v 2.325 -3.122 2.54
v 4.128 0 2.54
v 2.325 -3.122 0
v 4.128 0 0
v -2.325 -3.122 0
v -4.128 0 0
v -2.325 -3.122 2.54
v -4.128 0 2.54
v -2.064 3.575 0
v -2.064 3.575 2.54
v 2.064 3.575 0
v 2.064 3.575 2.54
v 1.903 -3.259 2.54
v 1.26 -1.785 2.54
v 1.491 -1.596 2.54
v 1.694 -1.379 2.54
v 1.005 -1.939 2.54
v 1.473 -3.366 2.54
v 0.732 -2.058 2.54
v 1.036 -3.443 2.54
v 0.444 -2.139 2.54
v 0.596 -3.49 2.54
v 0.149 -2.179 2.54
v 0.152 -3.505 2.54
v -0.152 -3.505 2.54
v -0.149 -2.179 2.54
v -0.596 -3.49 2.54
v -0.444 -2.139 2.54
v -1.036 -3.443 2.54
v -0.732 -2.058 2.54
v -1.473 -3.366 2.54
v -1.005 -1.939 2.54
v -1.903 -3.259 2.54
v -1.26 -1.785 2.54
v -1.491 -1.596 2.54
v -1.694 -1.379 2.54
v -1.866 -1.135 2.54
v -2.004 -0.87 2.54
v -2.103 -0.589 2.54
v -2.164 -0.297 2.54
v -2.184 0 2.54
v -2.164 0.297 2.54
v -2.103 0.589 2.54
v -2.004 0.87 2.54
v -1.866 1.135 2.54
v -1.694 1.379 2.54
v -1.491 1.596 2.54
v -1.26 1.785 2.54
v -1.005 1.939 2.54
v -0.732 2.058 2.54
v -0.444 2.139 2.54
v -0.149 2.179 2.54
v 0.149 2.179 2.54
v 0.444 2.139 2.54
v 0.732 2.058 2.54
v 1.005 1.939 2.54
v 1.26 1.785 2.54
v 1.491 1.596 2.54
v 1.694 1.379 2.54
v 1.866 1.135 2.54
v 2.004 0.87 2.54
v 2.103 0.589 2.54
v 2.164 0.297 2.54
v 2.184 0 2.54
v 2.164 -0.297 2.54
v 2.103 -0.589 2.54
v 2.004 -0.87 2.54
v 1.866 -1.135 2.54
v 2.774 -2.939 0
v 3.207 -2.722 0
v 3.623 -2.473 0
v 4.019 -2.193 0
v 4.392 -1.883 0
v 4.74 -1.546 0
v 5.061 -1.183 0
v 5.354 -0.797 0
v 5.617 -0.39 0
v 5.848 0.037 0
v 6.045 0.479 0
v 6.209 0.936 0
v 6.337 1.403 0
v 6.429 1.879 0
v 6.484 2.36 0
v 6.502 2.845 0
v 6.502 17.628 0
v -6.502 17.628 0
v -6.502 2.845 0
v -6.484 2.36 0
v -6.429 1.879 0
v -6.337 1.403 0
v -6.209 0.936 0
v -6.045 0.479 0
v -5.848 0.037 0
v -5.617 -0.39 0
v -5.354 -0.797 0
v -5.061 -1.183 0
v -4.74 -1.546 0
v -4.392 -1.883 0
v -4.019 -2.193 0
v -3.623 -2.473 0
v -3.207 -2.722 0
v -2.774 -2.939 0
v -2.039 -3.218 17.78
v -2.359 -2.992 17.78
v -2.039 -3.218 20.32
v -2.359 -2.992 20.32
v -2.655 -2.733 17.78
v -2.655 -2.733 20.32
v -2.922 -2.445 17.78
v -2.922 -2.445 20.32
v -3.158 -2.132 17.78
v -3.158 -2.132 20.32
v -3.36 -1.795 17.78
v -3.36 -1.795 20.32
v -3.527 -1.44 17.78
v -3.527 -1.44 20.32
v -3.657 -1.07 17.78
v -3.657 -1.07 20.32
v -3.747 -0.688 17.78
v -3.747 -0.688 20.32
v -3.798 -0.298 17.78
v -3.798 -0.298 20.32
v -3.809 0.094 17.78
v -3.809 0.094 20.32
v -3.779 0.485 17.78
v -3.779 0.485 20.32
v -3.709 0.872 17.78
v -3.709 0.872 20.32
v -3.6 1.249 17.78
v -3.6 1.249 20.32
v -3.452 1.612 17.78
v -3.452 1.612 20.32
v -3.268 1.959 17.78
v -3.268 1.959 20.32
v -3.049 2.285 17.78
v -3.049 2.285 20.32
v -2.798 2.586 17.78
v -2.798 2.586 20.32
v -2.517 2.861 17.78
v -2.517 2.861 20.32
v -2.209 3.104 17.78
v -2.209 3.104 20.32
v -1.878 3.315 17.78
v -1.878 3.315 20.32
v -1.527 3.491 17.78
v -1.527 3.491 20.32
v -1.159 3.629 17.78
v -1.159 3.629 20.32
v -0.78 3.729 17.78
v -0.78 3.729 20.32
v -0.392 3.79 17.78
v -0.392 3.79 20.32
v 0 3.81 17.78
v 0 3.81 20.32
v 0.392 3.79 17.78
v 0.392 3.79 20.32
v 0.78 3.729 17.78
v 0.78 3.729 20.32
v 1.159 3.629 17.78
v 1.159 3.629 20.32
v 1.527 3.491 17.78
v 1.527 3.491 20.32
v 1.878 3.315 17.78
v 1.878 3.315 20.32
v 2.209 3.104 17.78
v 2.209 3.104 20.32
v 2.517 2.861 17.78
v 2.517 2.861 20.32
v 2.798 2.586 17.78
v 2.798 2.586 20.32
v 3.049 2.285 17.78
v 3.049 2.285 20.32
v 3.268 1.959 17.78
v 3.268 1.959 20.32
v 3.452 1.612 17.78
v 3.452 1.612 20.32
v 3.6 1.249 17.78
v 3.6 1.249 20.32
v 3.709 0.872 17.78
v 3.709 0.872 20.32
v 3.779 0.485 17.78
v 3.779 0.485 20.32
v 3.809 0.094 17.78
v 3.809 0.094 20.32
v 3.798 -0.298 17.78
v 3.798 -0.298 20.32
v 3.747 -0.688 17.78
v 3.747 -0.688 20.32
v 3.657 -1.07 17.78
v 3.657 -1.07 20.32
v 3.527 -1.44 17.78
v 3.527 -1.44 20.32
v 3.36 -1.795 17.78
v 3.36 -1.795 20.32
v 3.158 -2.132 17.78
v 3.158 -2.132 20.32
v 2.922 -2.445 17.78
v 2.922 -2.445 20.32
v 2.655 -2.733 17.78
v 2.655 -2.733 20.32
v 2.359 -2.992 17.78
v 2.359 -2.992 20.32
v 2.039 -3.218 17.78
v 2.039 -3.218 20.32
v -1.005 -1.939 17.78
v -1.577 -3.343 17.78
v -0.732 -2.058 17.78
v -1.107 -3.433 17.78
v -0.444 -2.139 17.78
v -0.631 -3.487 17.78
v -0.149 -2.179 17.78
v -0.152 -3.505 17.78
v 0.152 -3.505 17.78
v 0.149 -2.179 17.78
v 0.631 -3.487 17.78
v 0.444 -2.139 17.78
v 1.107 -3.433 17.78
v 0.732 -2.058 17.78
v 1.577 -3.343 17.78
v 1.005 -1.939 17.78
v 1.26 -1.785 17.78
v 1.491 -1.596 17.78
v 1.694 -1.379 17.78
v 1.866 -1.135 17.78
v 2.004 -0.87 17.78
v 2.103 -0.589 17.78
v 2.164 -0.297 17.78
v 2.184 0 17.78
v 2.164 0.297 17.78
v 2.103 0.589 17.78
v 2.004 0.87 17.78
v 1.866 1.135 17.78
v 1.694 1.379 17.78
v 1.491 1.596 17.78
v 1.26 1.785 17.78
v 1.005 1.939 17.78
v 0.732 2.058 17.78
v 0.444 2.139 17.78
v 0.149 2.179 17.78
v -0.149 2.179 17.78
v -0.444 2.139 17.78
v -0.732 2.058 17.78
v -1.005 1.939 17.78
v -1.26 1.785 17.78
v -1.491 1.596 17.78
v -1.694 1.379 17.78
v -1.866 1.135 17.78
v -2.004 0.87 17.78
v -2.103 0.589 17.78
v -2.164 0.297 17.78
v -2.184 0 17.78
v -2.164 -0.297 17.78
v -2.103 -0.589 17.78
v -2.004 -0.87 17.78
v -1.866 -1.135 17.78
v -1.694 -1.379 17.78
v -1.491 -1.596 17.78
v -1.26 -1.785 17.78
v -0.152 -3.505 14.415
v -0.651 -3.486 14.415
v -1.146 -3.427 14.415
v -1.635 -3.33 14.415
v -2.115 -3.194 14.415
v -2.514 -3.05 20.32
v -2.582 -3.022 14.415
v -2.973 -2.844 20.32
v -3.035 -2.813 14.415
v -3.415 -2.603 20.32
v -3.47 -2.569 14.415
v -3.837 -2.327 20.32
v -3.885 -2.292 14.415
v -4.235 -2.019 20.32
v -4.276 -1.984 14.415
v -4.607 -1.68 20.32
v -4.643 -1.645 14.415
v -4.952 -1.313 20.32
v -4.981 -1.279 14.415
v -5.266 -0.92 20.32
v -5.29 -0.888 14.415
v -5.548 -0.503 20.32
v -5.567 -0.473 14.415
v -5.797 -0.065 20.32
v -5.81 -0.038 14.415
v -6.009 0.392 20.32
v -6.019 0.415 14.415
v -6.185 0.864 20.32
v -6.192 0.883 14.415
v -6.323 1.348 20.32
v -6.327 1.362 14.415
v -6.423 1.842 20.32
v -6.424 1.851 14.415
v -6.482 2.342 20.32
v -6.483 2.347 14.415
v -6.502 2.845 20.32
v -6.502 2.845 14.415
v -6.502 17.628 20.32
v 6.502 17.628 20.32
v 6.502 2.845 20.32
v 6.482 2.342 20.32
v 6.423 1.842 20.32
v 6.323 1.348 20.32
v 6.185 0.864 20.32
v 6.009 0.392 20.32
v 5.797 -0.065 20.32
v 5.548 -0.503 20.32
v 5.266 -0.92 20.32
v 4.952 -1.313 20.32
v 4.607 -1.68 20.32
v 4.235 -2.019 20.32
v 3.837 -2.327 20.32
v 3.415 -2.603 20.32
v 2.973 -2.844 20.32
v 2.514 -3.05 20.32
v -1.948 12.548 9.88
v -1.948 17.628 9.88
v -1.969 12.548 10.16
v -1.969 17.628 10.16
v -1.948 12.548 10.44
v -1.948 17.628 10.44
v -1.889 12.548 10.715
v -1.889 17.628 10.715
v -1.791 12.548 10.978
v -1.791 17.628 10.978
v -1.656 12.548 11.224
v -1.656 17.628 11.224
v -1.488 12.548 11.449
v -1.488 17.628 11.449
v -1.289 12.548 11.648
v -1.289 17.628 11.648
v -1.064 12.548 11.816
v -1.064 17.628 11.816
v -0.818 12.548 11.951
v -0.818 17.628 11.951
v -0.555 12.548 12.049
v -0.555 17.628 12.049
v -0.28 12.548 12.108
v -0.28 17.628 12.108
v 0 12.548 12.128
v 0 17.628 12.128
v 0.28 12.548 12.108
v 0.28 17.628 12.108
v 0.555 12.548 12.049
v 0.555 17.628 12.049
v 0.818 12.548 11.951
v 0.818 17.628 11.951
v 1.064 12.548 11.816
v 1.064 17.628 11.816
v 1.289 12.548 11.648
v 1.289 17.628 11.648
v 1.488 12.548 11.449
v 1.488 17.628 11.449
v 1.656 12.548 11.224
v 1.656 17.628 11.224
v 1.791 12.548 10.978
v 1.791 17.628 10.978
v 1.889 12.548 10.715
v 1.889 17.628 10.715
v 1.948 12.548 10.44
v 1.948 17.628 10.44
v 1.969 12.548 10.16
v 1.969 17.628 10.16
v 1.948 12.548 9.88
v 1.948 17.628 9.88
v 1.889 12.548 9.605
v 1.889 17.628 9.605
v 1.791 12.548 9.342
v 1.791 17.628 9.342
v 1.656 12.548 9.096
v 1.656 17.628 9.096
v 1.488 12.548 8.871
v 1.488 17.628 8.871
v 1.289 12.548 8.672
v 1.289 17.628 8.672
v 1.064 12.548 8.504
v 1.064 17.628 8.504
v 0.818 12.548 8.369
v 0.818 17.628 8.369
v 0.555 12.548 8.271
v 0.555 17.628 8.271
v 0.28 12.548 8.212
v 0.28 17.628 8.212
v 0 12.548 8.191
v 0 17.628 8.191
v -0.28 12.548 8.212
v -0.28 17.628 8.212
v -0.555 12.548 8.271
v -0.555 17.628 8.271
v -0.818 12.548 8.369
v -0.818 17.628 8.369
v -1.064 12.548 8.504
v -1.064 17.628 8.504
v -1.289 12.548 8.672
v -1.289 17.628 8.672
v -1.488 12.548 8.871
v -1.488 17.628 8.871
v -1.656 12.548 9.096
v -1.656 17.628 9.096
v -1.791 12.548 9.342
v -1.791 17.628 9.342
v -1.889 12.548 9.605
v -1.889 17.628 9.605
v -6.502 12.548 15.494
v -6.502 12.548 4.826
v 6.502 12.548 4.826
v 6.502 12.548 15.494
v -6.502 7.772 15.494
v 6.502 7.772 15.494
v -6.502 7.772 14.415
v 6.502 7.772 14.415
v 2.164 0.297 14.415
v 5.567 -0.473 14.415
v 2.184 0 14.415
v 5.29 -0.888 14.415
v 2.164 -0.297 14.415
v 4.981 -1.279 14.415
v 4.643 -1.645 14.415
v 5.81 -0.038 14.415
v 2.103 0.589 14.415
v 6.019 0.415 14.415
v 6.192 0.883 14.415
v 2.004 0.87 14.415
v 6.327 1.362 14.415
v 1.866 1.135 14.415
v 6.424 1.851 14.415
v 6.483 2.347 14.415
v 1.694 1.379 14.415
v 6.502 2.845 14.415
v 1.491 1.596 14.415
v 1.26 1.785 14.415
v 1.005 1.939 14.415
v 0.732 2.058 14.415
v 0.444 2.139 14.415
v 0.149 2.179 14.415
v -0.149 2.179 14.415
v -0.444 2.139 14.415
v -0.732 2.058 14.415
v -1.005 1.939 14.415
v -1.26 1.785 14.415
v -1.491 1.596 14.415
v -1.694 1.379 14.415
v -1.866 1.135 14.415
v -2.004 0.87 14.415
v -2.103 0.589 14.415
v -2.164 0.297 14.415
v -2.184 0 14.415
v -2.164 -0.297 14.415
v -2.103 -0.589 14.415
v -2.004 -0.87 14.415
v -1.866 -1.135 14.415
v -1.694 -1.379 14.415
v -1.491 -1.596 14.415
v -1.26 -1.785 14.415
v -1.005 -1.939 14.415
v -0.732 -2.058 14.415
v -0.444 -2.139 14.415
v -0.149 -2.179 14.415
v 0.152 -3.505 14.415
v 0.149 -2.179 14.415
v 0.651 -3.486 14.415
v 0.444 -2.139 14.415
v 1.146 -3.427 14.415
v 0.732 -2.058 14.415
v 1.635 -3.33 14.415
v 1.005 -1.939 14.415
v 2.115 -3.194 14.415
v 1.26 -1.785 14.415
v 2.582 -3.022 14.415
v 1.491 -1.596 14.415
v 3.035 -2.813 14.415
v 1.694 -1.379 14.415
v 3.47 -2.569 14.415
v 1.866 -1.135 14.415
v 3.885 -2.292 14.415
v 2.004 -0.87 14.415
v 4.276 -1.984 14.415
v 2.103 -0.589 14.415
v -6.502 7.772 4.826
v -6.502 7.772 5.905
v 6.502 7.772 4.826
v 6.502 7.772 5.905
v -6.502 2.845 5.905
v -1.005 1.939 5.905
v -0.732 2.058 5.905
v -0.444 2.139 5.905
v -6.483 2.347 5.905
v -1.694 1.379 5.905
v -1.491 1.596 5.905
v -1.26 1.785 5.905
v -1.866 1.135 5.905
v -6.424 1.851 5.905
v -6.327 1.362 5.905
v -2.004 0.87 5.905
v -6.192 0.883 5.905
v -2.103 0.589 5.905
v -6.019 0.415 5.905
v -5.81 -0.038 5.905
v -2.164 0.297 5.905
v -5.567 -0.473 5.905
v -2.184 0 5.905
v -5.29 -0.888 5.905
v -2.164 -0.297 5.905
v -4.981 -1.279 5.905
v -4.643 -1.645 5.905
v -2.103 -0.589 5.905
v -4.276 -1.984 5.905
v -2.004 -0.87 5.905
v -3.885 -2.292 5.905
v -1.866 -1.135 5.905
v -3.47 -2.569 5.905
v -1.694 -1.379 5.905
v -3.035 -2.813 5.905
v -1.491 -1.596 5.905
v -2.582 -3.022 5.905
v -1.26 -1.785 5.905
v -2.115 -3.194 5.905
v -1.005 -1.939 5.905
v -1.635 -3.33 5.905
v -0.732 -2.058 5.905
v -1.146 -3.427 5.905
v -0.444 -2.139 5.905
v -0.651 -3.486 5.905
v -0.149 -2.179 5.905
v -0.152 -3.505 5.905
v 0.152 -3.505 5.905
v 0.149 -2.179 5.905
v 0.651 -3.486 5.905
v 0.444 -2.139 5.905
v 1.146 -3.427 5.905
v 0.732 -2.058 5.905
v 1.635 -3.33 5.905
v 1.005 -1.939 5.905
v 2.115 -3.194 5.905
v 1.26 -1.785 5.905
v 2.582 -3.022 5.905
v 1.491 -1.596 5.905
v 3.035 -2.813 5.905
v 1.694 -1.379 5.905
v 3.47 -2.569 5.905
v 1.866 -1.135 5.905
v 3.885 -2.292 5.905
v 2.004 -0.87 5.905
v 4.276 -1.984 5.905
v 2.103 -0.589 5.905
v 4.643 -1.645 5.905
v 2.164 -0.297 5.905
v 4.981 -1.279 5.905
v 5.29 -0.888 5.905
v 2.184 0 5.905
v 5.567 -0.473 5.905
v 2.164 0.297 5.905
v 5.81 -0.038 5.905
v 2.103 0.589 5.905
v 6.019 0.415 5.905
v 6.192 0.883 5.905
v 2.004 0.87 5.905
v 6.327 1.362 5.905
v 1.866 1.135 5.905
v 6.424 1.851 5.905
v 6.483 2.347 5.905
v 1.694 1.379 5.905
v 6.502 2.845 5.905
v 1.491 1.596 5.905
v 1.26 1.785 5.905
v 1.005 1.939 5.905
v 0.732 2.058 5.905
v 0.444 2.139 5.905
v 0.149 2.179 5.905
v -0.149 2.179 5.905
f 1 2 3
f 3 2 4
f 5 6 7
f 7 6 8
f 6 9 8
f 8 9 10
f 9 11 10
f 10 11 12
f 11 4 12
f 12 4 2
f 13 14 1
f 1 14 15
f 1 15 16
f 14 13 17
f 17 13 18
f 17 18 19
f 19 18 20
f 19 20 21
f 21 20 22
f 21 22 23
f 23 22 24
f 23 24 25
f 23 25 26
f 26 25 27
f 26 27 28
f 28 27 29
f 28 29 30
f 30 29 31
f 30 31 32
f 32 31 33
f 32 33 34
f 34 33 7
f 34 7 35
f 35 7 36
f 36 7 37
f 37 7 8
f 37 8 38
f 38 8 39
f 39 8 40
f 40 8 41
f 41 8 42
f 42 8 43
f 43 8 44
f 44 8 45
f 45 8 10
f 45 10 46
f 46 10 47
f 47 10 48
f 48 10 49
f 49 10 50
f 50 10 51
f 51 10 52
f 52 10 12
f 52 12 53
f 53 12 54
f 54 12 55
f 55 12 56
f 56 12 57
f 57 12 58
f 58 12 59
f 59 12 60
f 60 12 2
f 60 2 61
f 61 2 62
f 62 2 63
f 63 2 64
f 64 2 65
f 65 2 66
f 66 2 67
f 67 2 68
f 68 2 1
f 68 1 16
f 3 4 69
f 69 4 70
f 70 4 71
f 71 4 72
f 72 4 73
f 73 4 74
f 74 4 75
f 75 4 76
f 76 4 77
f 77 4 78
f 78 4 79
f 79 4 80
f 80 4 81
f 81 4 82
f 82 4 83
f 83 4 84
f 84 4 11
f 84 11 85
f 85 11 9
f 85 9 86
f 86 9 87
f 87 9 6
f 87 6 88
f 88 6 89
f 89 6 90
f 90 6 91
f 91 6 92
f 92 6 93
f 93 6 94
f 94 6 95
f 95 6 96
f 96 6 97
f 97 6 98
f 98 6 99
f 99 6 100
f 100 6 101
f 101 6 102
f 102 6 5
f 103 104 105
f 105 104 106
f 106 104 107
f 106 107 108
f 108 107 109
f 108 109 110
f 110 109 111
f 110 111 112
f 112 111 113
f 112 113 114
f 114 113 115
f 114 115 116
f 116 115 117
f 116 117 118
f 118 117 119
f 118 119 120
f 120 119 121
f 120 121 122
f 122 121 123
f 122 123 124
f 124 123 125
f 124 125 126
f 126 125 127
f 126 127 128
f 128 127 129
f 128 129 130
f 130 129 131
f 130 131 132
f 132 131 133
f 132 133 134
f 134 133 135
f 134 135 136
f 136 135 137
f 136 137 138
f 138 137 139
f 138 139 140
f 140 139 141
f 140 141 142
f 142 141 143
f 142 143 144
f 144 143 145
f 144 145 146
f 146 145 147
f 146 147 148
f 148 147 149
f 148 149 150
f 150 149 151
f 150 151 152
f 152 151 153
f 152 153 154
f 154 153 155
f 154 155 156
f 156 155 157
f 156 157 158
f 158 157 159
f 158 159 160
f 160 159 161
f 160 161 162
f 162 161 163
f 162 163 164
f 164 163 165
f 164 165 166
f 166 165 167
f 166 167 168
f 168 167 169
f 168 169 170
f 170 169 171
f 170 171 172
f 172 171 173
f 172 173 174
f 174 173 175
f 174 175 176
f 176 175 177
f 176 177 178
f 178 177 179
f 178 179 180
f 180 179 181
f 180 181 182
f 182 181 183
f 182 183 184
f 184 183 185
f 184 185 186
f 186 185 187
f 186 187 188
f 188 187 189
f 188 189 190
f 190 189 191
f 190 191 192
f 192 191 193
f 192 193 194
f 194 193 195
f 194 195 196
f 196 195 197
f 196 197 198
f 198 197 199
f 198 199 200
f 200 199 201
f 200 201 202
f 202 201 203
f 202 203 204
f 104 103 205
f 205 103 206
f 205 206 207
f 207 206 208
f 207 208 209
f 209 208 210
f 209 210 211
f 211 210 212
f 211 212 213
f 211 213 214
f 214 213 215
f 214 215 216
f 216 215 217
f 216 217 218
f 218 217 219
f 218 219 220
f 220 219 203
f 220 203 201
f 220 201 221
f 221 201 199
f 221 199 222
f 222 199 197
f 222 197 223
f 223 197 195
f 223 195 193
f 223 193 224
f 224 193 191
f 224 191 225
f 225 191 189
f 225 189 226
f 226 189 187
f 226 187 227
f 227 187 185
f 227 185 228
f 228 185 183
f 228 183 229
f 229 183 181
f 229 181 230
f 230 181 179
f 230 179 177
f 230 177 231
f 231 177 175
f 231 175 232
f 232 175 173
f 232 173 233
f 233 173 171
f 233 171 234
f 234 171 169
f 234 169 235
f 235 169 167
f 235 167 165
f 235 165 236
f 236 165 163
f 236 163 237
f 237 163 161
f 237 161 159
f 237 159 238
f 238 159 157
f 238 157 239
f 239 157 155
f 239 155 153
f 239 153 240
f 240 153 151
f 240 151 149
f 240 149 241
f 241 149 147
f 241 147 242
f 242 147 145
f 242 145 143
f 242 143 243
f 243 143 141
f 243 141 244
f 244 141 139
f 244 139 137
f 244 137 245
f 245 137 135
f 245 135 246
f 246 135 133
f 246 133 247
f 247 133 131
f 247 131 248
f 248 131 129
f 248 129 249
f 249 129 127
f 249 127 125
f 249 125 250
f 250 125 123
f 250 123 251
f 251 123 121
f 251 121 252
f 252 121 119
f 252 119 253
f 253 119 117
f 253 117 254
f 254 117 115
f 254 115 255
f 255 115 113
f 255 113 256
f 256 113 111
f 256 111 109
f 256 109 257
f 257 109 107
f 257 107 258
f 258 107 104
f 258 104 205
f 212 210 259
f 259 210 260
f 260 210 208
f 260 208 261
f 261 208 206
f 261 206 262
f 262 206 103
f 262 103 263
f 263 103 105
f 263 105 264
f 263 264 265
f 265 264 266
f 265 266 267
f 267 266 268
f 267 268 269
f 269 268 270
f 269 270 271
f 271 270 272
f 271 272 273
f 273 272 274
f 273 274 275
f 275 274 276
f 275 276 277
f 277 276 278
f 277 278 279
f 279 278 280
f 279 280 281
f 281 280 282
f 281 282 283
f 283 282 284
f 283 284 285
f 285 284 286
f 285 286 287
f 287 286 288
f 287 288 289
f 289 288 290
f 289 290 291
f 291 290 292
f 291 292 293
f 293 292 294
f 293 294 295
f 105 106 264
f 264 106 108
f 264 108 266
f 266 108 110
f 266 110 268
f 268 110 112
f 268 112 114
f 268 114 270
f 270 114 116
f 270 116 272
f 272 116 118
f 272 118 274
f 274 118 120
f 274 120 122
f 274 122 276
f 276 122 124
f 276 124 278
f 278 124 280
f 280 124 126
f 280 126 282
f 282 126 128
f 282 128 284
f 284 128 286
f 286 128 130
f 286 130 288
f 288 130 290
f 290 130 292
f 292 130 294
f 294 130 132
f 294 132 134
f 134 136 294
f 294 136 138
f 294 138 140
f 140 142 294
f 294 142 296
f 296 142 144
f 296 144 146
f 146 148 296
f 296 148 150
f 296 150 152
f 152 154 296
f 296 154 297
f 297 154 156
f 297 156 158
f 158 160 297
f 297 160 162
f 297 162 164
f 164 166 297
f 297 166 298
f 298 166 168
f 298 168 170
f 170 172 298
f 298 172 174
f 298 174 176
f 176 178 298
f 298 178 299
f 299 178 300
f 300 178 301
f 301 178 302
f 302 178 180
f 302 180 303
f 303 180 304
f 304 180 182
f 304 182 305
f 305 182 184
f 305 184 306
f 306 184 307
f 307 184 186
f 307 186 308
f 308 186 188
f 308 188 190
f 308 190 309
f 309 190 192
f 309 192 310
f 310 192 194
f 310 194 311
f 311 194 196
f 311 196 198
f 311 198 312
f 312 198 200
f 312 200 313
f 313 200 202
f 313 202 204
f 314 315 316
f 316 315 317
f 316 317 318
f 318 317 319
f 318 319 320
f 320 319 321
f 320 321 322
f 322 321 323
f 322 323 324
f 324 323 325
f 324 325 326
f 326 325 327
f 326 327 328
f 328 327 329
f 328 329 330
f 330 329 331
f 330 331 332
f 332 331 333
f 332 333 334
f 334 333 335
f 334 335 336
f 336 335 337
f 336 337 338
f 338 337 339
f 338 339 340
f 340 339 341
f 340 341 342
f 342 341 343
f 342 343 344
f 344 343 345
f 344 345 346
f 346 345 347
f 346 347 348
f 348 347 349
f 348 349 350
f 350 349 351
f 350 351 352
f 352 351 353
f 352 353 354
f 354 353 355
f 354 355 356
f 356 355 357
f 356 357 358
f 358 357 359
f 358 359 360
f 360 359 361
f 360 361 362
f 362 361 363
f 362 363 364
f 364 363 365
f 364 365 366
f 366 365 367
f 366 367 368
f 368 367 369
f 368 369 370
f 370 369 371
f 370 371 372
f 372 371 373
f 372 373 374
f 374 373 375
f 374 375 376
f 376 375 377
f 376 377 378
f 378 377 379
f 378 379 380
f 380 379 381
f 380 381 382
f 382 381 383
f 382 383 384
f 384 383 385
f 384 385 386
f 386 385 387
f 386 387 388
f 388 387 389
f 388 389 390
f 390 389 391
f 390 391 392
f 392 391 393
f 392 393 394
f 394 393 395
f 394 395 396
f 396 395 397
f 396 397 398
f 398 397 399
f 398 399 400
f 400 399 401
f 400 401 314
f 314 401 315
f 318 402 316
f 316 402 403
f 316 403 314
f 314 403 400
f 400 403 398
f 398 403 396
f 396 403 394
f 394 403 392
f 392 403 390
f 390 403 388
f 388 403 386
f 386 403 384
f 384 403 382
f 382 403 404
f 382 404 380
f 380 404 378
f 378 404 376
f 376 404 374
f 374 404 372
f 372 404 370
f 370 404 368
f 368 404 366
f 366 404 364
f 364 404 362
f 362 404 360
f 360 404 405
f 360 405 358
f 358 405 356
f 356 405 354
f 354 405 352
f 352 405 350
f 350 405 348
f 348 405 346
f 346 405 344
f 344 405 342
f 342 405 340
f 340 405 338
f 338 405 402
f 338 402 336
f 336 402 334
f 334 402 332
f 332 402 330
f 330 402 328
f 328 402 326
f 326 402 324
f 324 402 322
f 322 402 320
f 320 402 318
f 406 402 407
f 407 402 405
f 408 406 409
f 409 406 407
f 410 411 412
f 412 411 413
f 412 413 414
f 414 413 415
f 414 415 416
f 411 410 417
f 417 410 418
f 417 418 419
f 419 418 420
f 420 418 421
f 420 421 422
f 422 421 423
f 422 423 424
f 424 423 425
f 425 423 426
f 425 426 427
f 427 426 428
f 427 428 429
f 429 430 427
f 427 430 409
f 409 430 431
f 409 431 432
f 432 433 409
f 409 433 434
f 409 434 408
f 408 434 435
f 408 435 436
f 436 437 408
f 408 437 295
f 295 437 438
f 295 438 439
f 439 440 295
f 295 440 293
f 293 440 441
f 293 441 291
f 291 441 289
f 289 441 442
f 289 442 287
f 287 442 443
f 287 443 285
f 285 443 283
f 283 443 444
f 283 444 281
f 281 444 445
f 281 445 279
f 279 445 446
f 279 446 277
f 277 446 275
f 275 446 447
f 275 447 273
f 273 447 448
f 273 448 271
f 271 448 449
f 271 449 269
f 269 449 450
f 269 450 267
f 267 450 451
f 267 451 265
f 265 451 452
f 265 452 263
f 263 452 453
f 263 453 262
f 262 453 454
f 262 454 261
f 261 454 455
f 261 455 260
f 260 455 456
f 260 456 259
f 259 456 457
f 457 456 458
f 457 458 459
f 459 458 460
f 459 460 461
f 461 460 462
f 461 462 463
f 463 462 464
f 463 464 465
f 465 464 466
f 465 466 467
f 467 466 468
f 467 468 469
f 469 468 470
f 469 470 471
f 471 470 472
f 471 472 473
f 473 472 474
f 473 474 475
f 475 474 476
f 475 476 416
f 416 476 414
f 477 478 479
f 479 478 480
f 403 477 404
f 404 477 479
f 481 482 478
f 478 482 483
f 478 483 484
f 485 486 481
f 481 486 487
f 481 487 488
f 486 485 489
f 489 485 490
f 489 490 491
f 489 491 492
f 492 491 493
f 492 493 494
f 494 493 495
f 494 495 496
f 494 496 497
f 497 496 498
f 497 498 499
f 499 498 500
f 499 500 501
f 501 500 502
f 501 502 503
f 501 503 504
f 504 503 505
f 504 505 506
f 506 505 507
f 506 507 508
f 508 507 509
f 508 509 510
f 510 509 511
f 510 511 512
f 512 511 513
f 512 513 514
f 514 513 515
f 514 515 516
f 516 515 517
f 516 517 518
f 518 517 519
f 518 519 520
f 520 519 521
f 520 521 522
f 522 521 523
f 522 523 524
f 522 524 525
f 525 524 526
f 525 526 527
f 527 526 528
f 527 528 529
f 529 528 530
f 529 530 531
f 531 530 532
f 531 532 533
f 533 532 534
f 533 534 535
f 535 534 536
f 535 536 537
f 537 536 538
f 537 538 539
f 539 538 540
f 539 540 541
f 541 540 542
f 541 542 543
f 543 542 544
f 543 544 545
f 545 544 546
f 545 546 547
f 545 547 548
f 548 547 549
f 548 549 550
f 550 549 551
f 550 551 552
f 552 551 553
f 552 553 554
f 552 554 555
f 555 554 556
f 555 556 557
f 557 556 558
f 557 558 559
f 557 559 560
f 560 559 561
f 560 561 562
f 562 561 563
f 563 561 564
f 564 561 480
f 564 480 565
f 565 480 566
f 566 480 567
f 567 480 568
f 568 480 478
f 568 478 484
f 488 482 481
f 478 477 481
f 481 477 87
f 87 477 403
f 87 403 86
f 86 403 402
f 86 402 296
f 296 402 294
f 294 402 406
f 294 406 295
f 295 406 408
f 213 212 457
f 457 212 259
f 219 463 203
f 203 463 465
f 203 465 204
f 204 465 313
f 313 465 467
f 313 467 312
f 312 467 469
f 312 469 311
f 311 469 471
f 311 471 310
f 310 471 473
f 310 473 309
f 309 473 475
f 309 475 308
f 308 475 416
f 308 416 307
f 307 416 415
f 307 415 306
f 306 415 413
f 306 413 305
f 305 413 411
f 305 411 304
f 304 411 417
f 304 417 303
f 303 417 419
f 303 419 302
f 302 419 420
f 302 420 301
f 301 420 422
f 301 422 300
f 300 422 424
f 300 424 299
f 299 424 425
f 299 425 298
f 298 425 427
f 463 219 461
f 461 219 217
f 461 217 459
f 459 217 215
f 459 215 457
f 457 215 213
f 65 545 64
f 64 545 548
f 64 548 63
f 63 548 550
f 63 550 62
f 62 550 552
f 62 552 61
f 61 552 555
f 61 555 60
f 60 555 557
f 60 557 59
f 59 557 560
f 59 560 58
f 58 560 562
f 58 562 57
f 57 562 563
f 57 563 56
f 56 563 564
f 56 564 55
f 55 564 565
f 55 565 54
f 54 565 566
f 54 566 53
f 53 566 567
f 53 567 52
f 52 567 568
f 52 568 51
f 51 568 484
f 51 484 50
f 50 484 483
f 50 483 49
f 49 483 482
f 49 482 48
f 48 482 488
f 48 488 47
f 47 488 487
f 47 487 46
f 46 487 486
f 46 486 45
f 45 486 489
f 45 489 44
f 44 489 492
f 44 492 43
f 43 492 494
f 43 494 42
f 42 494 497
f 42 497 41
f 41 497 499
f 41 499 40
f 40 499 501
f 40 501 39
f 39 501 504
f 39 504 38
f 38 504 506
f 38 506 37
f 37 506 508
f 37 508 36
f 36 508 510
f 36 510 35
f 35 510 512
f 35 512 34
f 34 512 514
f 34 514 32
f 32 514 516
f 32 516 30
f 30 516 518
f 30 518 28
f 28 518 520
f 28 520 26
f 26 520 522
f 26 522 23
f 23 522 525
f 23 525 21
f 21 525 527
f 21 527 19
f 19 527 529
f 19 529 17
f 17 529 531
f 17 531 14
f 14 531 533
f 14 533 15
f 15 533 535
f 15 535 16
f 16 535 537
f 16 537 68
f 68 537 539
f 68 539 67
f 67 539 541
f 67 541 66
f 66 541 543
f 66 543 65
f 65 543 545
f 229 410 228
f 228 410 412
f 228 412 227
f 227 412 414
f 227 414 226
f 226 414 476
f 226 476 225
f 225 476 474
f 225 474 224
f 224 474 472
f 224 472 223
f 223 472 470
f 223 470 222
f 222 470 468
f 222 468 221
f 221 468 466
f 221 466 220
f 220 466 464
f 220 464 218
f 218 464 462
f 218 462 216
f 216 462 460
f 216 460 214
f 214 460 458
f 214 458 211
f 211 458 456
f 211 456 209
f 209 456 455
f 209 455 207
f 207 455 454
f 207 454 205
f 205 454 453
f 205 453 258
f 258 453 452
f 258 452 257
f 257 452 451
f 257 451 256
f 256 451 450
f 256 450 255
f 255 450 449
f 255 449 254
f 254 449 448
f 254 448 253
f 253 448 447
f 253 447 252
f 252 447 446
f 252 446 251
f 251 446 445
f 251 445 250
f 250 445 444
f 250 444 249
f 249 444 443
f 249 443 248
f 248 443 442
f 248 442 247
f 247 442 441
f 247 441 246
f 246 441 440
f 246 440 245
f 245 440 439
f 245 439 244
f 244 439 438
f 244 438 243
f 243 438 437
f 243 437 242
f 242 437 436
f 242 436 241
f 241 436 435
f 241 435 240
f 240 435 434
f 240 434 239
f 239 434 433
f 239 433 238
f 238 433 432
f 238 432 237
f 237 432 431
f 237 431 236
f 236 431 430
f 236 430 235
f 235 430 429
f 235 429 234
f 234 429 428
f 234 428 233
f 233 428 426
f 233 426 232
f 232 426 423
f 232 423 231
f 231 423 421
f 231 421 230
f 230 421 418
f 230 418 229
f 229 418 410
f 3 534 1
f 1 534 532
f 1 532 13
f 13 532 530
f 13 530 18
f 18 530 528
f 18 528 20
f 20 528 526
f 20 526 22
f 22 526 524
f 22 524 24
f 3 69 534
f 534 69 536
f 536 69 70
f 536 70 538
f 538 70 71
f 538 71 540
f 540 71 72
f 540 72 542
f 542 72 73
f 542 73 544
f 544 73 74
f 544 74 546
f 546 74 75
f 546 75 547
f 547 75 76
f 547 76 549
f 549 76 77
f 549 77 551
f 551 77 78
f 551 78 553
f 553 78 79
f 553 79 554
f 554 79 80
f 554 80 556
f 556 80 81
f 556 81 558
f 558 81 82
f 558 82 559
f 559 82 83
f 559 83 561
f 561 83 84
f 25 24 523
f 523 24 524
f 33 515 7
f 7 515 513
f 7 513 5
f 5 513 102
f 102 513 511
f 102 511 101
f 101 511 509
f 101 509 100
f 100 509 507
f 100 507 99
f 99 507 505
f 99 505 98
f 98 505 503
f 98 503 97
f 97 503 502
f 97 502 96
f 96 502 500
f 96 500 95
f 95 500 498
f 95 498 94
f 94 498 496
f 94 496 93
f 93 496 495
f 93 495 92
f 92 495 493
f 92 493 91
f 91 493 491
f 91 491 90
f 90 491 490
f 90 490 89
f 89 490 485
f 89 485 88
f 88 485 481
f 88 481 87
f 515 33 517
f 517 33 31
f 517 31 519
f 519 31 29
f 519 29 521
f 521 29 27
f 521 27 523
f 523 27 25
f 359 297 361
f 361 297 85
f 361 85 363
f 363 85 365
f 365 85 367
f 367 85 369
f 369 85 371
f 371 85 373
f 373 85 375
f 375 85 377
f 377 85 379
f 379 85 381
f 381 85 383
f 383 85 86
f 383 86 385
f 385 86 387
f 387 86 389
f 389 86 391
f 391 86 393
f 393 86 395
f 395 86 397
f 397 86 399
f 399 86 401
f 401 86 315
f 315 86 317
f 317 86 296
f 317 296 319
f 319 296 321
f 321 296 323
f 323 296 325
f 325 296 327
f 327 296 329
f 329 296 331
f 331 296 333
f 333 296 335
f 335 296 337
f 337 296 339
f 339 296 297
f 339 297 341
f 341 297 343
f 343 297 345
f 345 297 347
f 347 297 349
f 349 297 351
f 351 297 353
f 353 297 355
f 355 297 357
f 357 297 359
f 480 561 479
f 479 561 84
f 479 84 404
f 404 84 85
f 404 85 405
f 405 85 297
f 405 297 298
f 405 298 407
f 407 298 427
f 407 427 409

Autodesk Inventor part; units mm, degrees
ref_plane "YZ Plane" through (0, 0, 0) normal (1, 0, 0) x (0, 1, 0)
ref_plane "XZ Plane" through (0, 0, 0) normal (0, 1, 0) x (-1, 0, 0)
ref_plane "XY Plane" through (0, 0, 0) normal (0, 0, 1) x (1, 0, 0)
sketch "Sketch1" plane through (0, 0, 0) normal (0, 0, 1) x (1, 0, 0)
  line L0 (6.5024, 2.8448) -> (6.5024, 17.6276)
  line L1 (6.5024, 17.6276) -> (-6.5024, 17.6276)
  line L2 (-6.5024, 2.8448) -> (-6.5024, 17.6276)
  circle A0 centre (0, 0) radius 3.5052 construction
  line L3 (0.1524, -3.5052) -> (-0.1524, -3.5052)
  arc A1 (-6.5024, 2.8448) -> (-0.1524, -3.5052) centre (-0.1524, 2.8448) ccw
  arc A2 (0.1524, -3.5052) -> (6.5024, 2.8448) centre (0.1524, 2.8448) ccw
  circle A3 centre (0, 0) radius 2.1844
  circle A4 centre (0, 0) radius 6.5024 construction
  dimension "d3" = 13.0048
  dimension "d5" = 7.0104
  dimension "d6" = 6.35
  dimension "d7" = 4.3688
  dimension "d10" = 13.0048
  dimension "d11" = 17.6276
extrude "Extrusion1" add sketch "Sketch1" along normal blind 20.32
sketch "Sketch2" plane through (6.5024, 2.8448, 0) normal (1, 0, 0) x (0, 0, -1)
  line L0 (-20.32, 0) -> (-20.32, 14.7828) construction
  line L1 (-20.32, 9.7028) -> (0, 9.7028) construction
  line L2 (0, 14.7828) -> (-20.32, 14.7828) construction
  line L3 (-20.32, 4.9276) -> (0, 4.9276) construction
  line L4 (0, 14.7828) -> (0, 0) construction
  line L5 (0, 0) -> (-20.32, 0) construction
  line L6 (0, -0.6604) -> (-20.32, -0.6604) construction
  line L7 (0, -5.0292) -> (-20.32, -5.0292) construction
  line L8 (0, -0.6604) -> (0, -5.0292) construction
  line L9 (0, -6.35) -> (0, 0) construction
  line L10 (-10.16, 14.7828) -> (-10.16, -6.35) construction
  line L11 (0, -6.35) -> (-20.32, -6.35) construction
  line L12 (-5.9055, 4.9276) -> (-5.9055, -6.35)
  line L13 (-5.9055, -6.35) -> (-10.16, -6.35)
  line L14 (-14.4145, 4.9276) -> (-14.4145, -6.35)
  line L15 (-14.4145, -6.35) -> (-10.16, -6.35)
  line L16 (-10.16, 9.7028) -> (-4.826, 9.7028)
  line L17 (-4.826, 9.7028) -> (-4.826, 4.9276)
  line L18 (-10.16, 9.7028) -> (-15.494, 9.7028)
  line L19 (-15.494, 9.7028) -> (-15.494, 4.9276)
  line L20 (-15.494, 4.9276) -> (-14.4145, 4.9276)
  line L21 (-4.826, 4.9276) -> (-5.9055, 4.9276)
  point P0 (0, -2.8448)
  dimension "d12" = 5.08
  dimension "d14" = 7.7724
  dimension "d15" = 4.2545
  dimension "d16" = 4.2545
extrude "Extrusion2" cut sketch "Sketch2" against normal through all
sketch "Sketch3" plane through (-6.5024, 17.6276, 0) normal (0, 1, 0) x (1, 0, 0)
  line L0 (6.6548, -14.4145) -> (6.6548, -20.32) construction
  line L1 (0, 0) -> (13.0048, 0) construction
  line L2 (6.5024, 0) -> (6.5024, -20.32) construction
  line L3 (13.0048, -20.32) -> (0, -20.32) construction
  line L4 (13.0048, 0) -> (13.0048, -20.32) construction
  line L5 (13.0048, -10.16) -> (0, -10.16) construction
  line L6 (0, 0) -> (0, -20.32) construction
  circle A0 centre (6.5024, -10.16) radius 1.9685 construction
  point P0 (6.5024, 0)
  dimension "d21" = 6.5024
  dimension "d22" = 10.16
  dimension "d23" = 3.937
hole "Hole1" at (0, 17.6276, 10.16) direction (0, -1, 0) diameter 3.937 end through all
sketch "Sketch4" plane through (0, 0, 20.32) normal (0, 0, 1) x (1, 0, 0)
  circle A0 centre (0, 0) radius 3.81
  dimension "d31" = 7.62
extrude "Extrusion3" cut sketch "Sketch4" against normal blind 2.54
sketch "Sketch5" plane through (0, 0, 0) normal (0, 0, -1) x (-1, 0, 0)
  circle A0 centre (0, 0) radius 2.1844 construction
  circle A1 centre (0, 0) radius 4.1275 construction
  line L0 (-4.1275, 0) -> (-2.0638, 3.5745)
  line L1 (-2.0638, 3.5745) -> (2.0637, 3.5745)
  line L2 (2.0637, 3.5745) -> (4.1275, 0)
  line L3 (4.1275, 0) -> (2.0638, -3.5745)
  line L4 (2.0638, -3.5745) -> (-2.0637, -3.5745)
  line L5 (-2.0637, -3.5745) -> (-4.1275, 0)
  dimension "d34" = 8.255
extrude "Extrusion4" cut sketch "Sketch5" against normal blind 2.54
properties part number "omni wheel wheel holder proto"
